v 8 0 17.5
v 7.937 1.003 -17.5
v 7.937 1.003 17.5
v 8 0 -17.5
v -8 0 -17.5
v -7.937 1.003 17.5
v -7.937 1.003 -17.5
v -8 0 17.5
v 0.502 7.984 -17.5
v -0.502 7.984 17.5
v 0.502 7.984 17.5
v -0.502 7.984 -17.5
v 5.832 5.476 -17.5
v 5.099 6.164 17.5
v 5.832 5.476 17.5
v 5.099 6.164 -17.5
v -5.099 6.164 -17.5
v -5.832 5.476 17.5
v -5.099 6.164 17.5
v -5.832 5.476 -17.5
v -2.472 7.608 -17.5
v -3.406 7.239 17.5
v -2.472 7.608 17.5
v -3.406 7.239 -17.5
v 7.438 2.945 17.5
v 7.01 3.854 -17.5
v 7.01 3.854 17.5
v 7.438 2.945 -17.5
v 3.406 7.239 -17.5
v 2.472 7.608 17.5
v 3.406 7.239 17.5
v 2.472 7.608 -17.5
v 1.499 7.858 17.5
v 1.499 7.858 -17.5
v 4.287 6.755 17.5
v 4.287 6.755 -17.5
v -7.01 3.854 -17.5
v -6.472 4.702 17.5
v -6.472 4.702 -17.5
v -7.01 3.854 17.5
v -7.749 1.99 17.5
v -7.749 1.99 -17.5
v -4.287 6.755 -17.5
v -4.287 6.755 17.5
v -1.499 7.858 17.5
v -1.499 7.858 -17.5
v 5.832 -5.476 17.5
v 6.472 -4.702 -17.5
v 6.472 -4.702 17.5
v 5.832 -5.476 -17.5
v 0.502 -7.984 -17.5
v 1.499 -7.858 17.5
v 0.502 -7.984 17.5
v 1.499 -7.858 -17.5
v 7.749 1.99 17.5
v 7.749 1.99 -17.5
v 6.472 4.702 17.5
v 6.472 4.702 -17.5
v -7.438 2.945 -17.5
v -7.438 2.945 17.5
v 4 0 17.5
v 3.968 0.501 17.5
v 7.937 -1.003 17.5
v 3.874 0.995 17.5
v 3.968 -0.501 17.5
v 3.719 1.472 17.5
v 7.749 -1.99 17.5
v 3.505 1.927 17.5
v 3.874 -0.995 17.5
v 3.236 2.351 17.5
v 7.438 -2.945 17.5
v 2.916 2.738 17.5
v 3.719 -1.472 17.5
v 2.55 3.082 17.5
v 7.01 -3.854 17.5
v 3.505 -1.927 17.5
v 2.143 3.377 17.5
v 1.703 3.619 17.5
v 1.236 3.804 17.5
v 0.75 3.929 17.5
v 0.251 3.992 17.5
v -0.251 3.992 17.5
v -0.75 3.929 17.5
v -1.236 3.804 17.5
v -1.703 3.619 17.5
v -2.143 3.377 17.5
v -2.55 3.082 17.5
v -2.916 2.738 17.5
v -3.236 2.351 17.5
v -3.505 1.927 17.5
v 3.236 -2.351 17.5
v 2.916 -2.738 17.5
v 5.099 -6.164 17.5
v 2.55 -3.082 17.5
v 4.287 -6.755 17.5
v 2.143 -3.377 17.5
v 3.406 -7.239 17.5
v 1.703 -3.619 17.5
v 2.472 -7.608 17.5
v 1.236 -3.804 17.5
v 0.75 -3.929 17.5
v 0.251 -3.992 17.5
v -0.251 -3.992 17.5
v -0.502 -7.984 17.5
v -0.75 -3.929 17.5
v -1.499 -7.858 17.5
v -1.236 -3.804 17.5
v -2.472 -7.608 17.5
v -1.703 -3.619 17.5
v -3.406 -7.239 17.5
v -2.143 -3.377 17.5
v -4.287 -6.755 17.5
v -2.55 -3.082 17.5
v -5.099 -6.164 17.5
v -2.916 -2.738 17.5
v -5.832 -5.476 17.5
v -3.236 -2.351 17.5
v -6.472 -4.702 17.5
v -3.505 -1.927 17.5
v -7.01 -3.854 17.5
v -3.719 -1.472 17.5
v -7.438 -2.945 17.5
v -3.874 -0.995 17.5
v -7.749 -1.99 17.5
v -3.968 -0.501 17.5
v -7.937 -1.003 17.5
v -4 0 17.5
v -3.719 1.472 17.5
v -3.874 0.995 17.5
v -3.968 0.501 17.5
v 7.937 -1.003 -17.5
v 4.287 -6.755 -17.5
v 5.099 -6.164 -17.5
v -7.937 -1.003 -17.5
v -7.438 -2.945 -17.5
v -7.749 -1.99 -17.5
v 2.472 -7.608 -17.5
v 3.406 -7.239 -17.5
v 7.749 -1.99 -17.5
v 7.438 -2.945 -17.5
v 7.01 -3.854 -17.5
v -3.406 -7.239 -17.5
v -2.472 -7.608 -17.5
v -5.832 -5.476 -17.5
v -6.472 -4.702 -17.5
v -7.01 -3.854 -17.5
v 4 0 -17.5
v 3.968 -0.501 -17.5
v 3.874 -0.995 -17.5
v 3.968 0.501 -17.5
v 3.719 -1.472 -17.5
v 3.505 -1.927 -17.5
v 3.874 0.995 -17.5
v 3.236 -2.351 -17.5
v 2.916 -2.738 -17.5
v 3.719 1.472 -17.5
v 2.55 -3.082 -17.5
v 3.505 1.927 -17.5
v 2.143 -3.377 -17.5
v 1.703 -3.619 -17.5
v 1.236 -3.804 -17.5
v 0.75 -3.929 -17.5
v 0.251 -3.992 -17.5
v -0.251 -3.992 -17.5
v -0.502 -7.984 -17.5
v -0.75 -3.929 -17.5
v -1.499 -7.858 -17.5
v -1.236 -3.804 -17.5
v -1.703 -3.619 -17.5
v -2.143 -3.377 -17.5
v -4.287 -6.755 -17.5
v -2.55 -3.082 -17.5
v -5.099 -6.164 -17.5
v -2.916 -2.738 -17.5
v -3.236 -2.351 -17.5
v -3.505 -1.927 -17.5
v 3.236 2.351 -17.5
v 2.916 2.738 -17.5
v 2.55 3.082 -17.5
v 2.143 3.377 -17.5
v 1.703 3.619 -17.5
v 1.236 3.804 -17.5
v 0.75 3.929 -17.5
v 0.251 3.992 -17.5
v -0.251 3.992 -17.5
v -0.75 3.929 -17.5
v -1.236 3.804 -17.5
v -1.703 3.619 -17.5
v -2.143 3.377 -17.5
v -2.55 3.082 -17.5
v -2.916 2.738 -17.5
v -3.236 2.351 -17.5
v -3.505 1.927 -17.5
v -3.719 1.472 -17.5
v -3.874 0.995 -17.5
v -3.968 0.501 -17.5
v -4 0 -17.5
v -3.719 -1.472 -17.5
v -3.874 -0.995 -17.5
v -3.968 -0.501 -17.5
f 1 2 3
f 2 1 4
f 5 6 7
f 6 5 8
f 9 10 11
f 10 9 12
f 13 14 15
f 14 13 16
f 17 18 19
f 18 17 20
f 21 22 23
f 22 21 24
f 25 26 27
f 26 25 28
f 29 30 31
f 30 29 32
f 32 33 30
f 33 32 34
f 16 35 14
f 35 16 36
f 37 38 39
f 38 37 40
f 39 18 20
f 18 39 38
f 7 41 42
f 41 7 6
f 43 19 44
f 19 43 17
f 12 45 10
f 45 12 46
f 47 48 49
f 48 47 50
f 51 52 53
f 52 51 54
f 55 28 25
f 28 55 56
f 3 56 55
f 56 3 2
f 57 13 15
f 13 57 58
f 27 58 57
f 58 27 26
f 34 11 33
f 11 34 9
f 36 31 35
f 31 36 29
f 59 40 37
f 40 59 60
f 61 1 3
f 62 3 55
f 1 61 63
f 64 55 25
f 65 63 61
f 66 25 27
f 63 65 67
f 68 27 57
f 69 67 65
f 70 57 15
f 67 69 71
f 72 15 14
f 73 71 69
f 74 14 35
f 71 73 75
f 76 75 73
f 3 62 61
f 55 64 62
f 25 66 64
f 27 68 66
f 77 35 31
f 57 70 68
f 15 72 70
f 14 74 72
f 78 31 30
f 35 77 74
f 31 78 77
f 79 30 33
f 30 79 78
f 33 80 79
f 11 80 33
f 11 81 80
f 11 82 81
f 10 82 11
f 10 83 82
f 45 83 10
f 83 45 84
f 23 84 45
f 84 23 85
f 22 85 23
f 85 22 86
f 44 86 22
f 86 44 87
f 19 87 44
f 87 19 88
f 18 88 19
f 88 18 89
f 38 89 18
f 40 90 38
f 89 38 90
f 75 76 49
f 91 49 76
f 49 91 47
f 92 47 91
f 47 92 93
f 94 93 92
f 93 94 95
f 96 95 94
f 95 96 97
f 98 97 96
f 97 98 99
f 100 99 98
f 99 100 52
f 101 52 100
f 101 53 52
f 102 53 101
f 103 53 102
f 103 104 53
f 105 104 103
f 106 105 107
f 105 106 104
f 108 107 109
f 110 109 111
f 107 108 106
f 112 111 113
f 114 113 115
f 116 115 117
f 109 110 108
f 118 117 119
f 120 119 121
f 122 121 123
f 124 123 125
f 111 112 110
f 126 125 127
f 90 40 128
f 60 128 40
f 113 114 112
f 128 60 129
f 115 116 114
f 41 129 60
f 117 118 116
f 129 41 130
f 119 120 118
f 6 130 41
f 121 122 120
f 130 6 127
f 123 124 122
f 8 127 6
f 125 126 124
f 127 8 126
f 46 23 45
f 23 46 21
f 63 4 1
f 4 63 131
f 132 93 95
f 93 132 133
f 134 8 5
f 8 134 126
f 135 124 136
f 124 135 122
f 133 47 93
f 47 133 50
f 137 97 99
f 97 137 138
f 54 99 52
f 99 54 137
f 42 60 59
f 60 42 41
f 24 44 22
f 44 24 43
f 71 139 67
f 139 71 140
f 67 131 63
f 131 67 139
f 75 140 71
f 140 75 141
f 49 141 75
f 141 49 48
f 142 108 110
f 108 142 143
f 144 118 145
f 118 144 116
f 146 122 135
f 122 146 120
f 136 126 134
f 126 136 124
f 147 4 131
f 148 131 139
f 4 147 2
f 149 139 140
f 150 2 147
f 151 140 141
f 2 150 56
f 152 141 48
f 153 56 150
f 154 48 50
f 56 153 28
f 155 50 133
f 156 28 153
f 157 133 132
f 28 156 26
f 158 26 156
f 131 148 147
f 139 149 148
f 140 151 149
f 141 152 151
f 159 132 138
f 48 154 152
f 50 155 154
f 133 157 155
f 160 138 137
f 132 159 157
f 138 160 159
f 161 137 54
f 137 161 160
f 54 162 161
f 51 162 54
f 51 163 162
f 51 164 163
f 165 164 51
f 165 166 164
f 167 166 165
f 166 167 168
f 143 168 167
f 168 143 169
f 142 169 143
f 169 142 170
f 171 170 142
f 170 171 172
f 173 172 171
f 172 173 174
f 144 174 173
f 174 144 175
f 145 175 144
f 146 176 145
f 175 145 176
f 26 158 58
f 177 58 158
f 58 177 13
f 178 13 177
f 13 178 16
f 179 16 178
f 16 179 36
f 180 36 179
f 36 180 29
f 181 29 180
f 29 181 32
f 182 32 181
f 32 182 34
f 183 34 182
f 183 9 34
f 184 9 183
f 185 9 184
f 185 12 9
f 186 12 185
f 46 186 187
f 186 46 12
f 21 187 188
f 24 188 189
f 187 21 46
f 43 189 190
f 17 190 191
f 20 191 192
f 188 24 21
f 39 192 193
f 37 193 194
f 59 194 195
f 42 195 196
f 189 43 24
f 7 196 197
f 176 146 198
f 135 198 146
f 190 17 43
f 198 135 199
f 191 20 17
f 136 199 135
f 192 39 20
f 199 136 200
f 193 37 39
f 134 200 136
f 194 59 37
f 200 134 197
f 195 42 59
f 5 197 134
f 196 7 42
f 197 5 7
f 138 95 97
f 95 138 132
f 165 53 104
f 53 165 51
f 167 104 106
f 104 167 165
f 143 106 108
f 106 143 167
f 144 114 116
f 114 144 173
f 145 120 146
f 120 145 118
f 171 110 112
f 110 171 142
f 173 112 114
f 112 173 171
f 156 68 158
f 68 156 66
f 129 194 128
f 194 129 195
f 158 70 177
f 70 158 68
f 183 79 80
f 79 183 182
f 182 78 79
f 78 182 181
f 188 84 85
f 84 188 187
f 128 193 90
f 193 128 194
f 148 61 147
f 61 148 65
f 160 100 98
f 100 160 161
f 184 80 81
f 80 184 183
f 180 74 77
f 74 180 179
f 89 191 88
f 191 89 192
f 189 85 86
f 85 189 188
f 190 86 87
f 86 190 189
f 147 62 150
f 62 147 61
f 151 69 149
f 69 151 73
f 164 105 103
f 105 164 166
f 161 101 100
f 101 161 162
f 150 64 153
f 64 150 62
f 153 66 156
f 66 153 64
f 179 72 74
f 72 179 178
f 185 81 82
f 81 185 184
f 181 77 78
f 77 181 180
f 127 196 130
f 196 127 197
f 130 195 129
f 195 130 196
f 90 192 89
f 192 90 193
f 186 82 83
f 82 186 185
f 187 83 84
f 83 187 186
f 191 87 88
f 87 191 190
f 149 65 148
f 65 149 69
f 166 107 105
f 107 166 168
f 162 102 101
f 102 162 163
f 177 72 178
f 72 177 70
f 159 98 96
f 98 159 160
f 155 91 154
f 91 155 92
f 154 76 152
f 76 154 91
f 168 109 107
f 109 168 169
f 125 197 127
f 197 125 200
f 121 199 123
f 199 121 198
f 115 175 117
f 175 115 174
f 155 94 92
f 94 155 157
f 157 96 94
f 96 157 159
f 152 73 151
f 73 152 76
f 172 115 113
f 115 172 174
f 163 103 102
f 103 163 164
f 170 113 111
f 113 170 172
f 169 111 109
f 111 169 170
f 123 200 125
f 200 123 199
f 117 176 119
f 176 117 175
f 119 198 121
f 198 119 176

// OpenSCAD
$fn = 50;


difference() {
	union() {
		translate(v = [0, 0, -17.5000000000]) {
			cylinder(h = 35, r = 8.0000000000);
		}
	}
	union() {
		translate(v = [0, 0, -100.0000000000]) {
			cylinder(h = 200, r = 4.0000000000);
		}
	}
}
